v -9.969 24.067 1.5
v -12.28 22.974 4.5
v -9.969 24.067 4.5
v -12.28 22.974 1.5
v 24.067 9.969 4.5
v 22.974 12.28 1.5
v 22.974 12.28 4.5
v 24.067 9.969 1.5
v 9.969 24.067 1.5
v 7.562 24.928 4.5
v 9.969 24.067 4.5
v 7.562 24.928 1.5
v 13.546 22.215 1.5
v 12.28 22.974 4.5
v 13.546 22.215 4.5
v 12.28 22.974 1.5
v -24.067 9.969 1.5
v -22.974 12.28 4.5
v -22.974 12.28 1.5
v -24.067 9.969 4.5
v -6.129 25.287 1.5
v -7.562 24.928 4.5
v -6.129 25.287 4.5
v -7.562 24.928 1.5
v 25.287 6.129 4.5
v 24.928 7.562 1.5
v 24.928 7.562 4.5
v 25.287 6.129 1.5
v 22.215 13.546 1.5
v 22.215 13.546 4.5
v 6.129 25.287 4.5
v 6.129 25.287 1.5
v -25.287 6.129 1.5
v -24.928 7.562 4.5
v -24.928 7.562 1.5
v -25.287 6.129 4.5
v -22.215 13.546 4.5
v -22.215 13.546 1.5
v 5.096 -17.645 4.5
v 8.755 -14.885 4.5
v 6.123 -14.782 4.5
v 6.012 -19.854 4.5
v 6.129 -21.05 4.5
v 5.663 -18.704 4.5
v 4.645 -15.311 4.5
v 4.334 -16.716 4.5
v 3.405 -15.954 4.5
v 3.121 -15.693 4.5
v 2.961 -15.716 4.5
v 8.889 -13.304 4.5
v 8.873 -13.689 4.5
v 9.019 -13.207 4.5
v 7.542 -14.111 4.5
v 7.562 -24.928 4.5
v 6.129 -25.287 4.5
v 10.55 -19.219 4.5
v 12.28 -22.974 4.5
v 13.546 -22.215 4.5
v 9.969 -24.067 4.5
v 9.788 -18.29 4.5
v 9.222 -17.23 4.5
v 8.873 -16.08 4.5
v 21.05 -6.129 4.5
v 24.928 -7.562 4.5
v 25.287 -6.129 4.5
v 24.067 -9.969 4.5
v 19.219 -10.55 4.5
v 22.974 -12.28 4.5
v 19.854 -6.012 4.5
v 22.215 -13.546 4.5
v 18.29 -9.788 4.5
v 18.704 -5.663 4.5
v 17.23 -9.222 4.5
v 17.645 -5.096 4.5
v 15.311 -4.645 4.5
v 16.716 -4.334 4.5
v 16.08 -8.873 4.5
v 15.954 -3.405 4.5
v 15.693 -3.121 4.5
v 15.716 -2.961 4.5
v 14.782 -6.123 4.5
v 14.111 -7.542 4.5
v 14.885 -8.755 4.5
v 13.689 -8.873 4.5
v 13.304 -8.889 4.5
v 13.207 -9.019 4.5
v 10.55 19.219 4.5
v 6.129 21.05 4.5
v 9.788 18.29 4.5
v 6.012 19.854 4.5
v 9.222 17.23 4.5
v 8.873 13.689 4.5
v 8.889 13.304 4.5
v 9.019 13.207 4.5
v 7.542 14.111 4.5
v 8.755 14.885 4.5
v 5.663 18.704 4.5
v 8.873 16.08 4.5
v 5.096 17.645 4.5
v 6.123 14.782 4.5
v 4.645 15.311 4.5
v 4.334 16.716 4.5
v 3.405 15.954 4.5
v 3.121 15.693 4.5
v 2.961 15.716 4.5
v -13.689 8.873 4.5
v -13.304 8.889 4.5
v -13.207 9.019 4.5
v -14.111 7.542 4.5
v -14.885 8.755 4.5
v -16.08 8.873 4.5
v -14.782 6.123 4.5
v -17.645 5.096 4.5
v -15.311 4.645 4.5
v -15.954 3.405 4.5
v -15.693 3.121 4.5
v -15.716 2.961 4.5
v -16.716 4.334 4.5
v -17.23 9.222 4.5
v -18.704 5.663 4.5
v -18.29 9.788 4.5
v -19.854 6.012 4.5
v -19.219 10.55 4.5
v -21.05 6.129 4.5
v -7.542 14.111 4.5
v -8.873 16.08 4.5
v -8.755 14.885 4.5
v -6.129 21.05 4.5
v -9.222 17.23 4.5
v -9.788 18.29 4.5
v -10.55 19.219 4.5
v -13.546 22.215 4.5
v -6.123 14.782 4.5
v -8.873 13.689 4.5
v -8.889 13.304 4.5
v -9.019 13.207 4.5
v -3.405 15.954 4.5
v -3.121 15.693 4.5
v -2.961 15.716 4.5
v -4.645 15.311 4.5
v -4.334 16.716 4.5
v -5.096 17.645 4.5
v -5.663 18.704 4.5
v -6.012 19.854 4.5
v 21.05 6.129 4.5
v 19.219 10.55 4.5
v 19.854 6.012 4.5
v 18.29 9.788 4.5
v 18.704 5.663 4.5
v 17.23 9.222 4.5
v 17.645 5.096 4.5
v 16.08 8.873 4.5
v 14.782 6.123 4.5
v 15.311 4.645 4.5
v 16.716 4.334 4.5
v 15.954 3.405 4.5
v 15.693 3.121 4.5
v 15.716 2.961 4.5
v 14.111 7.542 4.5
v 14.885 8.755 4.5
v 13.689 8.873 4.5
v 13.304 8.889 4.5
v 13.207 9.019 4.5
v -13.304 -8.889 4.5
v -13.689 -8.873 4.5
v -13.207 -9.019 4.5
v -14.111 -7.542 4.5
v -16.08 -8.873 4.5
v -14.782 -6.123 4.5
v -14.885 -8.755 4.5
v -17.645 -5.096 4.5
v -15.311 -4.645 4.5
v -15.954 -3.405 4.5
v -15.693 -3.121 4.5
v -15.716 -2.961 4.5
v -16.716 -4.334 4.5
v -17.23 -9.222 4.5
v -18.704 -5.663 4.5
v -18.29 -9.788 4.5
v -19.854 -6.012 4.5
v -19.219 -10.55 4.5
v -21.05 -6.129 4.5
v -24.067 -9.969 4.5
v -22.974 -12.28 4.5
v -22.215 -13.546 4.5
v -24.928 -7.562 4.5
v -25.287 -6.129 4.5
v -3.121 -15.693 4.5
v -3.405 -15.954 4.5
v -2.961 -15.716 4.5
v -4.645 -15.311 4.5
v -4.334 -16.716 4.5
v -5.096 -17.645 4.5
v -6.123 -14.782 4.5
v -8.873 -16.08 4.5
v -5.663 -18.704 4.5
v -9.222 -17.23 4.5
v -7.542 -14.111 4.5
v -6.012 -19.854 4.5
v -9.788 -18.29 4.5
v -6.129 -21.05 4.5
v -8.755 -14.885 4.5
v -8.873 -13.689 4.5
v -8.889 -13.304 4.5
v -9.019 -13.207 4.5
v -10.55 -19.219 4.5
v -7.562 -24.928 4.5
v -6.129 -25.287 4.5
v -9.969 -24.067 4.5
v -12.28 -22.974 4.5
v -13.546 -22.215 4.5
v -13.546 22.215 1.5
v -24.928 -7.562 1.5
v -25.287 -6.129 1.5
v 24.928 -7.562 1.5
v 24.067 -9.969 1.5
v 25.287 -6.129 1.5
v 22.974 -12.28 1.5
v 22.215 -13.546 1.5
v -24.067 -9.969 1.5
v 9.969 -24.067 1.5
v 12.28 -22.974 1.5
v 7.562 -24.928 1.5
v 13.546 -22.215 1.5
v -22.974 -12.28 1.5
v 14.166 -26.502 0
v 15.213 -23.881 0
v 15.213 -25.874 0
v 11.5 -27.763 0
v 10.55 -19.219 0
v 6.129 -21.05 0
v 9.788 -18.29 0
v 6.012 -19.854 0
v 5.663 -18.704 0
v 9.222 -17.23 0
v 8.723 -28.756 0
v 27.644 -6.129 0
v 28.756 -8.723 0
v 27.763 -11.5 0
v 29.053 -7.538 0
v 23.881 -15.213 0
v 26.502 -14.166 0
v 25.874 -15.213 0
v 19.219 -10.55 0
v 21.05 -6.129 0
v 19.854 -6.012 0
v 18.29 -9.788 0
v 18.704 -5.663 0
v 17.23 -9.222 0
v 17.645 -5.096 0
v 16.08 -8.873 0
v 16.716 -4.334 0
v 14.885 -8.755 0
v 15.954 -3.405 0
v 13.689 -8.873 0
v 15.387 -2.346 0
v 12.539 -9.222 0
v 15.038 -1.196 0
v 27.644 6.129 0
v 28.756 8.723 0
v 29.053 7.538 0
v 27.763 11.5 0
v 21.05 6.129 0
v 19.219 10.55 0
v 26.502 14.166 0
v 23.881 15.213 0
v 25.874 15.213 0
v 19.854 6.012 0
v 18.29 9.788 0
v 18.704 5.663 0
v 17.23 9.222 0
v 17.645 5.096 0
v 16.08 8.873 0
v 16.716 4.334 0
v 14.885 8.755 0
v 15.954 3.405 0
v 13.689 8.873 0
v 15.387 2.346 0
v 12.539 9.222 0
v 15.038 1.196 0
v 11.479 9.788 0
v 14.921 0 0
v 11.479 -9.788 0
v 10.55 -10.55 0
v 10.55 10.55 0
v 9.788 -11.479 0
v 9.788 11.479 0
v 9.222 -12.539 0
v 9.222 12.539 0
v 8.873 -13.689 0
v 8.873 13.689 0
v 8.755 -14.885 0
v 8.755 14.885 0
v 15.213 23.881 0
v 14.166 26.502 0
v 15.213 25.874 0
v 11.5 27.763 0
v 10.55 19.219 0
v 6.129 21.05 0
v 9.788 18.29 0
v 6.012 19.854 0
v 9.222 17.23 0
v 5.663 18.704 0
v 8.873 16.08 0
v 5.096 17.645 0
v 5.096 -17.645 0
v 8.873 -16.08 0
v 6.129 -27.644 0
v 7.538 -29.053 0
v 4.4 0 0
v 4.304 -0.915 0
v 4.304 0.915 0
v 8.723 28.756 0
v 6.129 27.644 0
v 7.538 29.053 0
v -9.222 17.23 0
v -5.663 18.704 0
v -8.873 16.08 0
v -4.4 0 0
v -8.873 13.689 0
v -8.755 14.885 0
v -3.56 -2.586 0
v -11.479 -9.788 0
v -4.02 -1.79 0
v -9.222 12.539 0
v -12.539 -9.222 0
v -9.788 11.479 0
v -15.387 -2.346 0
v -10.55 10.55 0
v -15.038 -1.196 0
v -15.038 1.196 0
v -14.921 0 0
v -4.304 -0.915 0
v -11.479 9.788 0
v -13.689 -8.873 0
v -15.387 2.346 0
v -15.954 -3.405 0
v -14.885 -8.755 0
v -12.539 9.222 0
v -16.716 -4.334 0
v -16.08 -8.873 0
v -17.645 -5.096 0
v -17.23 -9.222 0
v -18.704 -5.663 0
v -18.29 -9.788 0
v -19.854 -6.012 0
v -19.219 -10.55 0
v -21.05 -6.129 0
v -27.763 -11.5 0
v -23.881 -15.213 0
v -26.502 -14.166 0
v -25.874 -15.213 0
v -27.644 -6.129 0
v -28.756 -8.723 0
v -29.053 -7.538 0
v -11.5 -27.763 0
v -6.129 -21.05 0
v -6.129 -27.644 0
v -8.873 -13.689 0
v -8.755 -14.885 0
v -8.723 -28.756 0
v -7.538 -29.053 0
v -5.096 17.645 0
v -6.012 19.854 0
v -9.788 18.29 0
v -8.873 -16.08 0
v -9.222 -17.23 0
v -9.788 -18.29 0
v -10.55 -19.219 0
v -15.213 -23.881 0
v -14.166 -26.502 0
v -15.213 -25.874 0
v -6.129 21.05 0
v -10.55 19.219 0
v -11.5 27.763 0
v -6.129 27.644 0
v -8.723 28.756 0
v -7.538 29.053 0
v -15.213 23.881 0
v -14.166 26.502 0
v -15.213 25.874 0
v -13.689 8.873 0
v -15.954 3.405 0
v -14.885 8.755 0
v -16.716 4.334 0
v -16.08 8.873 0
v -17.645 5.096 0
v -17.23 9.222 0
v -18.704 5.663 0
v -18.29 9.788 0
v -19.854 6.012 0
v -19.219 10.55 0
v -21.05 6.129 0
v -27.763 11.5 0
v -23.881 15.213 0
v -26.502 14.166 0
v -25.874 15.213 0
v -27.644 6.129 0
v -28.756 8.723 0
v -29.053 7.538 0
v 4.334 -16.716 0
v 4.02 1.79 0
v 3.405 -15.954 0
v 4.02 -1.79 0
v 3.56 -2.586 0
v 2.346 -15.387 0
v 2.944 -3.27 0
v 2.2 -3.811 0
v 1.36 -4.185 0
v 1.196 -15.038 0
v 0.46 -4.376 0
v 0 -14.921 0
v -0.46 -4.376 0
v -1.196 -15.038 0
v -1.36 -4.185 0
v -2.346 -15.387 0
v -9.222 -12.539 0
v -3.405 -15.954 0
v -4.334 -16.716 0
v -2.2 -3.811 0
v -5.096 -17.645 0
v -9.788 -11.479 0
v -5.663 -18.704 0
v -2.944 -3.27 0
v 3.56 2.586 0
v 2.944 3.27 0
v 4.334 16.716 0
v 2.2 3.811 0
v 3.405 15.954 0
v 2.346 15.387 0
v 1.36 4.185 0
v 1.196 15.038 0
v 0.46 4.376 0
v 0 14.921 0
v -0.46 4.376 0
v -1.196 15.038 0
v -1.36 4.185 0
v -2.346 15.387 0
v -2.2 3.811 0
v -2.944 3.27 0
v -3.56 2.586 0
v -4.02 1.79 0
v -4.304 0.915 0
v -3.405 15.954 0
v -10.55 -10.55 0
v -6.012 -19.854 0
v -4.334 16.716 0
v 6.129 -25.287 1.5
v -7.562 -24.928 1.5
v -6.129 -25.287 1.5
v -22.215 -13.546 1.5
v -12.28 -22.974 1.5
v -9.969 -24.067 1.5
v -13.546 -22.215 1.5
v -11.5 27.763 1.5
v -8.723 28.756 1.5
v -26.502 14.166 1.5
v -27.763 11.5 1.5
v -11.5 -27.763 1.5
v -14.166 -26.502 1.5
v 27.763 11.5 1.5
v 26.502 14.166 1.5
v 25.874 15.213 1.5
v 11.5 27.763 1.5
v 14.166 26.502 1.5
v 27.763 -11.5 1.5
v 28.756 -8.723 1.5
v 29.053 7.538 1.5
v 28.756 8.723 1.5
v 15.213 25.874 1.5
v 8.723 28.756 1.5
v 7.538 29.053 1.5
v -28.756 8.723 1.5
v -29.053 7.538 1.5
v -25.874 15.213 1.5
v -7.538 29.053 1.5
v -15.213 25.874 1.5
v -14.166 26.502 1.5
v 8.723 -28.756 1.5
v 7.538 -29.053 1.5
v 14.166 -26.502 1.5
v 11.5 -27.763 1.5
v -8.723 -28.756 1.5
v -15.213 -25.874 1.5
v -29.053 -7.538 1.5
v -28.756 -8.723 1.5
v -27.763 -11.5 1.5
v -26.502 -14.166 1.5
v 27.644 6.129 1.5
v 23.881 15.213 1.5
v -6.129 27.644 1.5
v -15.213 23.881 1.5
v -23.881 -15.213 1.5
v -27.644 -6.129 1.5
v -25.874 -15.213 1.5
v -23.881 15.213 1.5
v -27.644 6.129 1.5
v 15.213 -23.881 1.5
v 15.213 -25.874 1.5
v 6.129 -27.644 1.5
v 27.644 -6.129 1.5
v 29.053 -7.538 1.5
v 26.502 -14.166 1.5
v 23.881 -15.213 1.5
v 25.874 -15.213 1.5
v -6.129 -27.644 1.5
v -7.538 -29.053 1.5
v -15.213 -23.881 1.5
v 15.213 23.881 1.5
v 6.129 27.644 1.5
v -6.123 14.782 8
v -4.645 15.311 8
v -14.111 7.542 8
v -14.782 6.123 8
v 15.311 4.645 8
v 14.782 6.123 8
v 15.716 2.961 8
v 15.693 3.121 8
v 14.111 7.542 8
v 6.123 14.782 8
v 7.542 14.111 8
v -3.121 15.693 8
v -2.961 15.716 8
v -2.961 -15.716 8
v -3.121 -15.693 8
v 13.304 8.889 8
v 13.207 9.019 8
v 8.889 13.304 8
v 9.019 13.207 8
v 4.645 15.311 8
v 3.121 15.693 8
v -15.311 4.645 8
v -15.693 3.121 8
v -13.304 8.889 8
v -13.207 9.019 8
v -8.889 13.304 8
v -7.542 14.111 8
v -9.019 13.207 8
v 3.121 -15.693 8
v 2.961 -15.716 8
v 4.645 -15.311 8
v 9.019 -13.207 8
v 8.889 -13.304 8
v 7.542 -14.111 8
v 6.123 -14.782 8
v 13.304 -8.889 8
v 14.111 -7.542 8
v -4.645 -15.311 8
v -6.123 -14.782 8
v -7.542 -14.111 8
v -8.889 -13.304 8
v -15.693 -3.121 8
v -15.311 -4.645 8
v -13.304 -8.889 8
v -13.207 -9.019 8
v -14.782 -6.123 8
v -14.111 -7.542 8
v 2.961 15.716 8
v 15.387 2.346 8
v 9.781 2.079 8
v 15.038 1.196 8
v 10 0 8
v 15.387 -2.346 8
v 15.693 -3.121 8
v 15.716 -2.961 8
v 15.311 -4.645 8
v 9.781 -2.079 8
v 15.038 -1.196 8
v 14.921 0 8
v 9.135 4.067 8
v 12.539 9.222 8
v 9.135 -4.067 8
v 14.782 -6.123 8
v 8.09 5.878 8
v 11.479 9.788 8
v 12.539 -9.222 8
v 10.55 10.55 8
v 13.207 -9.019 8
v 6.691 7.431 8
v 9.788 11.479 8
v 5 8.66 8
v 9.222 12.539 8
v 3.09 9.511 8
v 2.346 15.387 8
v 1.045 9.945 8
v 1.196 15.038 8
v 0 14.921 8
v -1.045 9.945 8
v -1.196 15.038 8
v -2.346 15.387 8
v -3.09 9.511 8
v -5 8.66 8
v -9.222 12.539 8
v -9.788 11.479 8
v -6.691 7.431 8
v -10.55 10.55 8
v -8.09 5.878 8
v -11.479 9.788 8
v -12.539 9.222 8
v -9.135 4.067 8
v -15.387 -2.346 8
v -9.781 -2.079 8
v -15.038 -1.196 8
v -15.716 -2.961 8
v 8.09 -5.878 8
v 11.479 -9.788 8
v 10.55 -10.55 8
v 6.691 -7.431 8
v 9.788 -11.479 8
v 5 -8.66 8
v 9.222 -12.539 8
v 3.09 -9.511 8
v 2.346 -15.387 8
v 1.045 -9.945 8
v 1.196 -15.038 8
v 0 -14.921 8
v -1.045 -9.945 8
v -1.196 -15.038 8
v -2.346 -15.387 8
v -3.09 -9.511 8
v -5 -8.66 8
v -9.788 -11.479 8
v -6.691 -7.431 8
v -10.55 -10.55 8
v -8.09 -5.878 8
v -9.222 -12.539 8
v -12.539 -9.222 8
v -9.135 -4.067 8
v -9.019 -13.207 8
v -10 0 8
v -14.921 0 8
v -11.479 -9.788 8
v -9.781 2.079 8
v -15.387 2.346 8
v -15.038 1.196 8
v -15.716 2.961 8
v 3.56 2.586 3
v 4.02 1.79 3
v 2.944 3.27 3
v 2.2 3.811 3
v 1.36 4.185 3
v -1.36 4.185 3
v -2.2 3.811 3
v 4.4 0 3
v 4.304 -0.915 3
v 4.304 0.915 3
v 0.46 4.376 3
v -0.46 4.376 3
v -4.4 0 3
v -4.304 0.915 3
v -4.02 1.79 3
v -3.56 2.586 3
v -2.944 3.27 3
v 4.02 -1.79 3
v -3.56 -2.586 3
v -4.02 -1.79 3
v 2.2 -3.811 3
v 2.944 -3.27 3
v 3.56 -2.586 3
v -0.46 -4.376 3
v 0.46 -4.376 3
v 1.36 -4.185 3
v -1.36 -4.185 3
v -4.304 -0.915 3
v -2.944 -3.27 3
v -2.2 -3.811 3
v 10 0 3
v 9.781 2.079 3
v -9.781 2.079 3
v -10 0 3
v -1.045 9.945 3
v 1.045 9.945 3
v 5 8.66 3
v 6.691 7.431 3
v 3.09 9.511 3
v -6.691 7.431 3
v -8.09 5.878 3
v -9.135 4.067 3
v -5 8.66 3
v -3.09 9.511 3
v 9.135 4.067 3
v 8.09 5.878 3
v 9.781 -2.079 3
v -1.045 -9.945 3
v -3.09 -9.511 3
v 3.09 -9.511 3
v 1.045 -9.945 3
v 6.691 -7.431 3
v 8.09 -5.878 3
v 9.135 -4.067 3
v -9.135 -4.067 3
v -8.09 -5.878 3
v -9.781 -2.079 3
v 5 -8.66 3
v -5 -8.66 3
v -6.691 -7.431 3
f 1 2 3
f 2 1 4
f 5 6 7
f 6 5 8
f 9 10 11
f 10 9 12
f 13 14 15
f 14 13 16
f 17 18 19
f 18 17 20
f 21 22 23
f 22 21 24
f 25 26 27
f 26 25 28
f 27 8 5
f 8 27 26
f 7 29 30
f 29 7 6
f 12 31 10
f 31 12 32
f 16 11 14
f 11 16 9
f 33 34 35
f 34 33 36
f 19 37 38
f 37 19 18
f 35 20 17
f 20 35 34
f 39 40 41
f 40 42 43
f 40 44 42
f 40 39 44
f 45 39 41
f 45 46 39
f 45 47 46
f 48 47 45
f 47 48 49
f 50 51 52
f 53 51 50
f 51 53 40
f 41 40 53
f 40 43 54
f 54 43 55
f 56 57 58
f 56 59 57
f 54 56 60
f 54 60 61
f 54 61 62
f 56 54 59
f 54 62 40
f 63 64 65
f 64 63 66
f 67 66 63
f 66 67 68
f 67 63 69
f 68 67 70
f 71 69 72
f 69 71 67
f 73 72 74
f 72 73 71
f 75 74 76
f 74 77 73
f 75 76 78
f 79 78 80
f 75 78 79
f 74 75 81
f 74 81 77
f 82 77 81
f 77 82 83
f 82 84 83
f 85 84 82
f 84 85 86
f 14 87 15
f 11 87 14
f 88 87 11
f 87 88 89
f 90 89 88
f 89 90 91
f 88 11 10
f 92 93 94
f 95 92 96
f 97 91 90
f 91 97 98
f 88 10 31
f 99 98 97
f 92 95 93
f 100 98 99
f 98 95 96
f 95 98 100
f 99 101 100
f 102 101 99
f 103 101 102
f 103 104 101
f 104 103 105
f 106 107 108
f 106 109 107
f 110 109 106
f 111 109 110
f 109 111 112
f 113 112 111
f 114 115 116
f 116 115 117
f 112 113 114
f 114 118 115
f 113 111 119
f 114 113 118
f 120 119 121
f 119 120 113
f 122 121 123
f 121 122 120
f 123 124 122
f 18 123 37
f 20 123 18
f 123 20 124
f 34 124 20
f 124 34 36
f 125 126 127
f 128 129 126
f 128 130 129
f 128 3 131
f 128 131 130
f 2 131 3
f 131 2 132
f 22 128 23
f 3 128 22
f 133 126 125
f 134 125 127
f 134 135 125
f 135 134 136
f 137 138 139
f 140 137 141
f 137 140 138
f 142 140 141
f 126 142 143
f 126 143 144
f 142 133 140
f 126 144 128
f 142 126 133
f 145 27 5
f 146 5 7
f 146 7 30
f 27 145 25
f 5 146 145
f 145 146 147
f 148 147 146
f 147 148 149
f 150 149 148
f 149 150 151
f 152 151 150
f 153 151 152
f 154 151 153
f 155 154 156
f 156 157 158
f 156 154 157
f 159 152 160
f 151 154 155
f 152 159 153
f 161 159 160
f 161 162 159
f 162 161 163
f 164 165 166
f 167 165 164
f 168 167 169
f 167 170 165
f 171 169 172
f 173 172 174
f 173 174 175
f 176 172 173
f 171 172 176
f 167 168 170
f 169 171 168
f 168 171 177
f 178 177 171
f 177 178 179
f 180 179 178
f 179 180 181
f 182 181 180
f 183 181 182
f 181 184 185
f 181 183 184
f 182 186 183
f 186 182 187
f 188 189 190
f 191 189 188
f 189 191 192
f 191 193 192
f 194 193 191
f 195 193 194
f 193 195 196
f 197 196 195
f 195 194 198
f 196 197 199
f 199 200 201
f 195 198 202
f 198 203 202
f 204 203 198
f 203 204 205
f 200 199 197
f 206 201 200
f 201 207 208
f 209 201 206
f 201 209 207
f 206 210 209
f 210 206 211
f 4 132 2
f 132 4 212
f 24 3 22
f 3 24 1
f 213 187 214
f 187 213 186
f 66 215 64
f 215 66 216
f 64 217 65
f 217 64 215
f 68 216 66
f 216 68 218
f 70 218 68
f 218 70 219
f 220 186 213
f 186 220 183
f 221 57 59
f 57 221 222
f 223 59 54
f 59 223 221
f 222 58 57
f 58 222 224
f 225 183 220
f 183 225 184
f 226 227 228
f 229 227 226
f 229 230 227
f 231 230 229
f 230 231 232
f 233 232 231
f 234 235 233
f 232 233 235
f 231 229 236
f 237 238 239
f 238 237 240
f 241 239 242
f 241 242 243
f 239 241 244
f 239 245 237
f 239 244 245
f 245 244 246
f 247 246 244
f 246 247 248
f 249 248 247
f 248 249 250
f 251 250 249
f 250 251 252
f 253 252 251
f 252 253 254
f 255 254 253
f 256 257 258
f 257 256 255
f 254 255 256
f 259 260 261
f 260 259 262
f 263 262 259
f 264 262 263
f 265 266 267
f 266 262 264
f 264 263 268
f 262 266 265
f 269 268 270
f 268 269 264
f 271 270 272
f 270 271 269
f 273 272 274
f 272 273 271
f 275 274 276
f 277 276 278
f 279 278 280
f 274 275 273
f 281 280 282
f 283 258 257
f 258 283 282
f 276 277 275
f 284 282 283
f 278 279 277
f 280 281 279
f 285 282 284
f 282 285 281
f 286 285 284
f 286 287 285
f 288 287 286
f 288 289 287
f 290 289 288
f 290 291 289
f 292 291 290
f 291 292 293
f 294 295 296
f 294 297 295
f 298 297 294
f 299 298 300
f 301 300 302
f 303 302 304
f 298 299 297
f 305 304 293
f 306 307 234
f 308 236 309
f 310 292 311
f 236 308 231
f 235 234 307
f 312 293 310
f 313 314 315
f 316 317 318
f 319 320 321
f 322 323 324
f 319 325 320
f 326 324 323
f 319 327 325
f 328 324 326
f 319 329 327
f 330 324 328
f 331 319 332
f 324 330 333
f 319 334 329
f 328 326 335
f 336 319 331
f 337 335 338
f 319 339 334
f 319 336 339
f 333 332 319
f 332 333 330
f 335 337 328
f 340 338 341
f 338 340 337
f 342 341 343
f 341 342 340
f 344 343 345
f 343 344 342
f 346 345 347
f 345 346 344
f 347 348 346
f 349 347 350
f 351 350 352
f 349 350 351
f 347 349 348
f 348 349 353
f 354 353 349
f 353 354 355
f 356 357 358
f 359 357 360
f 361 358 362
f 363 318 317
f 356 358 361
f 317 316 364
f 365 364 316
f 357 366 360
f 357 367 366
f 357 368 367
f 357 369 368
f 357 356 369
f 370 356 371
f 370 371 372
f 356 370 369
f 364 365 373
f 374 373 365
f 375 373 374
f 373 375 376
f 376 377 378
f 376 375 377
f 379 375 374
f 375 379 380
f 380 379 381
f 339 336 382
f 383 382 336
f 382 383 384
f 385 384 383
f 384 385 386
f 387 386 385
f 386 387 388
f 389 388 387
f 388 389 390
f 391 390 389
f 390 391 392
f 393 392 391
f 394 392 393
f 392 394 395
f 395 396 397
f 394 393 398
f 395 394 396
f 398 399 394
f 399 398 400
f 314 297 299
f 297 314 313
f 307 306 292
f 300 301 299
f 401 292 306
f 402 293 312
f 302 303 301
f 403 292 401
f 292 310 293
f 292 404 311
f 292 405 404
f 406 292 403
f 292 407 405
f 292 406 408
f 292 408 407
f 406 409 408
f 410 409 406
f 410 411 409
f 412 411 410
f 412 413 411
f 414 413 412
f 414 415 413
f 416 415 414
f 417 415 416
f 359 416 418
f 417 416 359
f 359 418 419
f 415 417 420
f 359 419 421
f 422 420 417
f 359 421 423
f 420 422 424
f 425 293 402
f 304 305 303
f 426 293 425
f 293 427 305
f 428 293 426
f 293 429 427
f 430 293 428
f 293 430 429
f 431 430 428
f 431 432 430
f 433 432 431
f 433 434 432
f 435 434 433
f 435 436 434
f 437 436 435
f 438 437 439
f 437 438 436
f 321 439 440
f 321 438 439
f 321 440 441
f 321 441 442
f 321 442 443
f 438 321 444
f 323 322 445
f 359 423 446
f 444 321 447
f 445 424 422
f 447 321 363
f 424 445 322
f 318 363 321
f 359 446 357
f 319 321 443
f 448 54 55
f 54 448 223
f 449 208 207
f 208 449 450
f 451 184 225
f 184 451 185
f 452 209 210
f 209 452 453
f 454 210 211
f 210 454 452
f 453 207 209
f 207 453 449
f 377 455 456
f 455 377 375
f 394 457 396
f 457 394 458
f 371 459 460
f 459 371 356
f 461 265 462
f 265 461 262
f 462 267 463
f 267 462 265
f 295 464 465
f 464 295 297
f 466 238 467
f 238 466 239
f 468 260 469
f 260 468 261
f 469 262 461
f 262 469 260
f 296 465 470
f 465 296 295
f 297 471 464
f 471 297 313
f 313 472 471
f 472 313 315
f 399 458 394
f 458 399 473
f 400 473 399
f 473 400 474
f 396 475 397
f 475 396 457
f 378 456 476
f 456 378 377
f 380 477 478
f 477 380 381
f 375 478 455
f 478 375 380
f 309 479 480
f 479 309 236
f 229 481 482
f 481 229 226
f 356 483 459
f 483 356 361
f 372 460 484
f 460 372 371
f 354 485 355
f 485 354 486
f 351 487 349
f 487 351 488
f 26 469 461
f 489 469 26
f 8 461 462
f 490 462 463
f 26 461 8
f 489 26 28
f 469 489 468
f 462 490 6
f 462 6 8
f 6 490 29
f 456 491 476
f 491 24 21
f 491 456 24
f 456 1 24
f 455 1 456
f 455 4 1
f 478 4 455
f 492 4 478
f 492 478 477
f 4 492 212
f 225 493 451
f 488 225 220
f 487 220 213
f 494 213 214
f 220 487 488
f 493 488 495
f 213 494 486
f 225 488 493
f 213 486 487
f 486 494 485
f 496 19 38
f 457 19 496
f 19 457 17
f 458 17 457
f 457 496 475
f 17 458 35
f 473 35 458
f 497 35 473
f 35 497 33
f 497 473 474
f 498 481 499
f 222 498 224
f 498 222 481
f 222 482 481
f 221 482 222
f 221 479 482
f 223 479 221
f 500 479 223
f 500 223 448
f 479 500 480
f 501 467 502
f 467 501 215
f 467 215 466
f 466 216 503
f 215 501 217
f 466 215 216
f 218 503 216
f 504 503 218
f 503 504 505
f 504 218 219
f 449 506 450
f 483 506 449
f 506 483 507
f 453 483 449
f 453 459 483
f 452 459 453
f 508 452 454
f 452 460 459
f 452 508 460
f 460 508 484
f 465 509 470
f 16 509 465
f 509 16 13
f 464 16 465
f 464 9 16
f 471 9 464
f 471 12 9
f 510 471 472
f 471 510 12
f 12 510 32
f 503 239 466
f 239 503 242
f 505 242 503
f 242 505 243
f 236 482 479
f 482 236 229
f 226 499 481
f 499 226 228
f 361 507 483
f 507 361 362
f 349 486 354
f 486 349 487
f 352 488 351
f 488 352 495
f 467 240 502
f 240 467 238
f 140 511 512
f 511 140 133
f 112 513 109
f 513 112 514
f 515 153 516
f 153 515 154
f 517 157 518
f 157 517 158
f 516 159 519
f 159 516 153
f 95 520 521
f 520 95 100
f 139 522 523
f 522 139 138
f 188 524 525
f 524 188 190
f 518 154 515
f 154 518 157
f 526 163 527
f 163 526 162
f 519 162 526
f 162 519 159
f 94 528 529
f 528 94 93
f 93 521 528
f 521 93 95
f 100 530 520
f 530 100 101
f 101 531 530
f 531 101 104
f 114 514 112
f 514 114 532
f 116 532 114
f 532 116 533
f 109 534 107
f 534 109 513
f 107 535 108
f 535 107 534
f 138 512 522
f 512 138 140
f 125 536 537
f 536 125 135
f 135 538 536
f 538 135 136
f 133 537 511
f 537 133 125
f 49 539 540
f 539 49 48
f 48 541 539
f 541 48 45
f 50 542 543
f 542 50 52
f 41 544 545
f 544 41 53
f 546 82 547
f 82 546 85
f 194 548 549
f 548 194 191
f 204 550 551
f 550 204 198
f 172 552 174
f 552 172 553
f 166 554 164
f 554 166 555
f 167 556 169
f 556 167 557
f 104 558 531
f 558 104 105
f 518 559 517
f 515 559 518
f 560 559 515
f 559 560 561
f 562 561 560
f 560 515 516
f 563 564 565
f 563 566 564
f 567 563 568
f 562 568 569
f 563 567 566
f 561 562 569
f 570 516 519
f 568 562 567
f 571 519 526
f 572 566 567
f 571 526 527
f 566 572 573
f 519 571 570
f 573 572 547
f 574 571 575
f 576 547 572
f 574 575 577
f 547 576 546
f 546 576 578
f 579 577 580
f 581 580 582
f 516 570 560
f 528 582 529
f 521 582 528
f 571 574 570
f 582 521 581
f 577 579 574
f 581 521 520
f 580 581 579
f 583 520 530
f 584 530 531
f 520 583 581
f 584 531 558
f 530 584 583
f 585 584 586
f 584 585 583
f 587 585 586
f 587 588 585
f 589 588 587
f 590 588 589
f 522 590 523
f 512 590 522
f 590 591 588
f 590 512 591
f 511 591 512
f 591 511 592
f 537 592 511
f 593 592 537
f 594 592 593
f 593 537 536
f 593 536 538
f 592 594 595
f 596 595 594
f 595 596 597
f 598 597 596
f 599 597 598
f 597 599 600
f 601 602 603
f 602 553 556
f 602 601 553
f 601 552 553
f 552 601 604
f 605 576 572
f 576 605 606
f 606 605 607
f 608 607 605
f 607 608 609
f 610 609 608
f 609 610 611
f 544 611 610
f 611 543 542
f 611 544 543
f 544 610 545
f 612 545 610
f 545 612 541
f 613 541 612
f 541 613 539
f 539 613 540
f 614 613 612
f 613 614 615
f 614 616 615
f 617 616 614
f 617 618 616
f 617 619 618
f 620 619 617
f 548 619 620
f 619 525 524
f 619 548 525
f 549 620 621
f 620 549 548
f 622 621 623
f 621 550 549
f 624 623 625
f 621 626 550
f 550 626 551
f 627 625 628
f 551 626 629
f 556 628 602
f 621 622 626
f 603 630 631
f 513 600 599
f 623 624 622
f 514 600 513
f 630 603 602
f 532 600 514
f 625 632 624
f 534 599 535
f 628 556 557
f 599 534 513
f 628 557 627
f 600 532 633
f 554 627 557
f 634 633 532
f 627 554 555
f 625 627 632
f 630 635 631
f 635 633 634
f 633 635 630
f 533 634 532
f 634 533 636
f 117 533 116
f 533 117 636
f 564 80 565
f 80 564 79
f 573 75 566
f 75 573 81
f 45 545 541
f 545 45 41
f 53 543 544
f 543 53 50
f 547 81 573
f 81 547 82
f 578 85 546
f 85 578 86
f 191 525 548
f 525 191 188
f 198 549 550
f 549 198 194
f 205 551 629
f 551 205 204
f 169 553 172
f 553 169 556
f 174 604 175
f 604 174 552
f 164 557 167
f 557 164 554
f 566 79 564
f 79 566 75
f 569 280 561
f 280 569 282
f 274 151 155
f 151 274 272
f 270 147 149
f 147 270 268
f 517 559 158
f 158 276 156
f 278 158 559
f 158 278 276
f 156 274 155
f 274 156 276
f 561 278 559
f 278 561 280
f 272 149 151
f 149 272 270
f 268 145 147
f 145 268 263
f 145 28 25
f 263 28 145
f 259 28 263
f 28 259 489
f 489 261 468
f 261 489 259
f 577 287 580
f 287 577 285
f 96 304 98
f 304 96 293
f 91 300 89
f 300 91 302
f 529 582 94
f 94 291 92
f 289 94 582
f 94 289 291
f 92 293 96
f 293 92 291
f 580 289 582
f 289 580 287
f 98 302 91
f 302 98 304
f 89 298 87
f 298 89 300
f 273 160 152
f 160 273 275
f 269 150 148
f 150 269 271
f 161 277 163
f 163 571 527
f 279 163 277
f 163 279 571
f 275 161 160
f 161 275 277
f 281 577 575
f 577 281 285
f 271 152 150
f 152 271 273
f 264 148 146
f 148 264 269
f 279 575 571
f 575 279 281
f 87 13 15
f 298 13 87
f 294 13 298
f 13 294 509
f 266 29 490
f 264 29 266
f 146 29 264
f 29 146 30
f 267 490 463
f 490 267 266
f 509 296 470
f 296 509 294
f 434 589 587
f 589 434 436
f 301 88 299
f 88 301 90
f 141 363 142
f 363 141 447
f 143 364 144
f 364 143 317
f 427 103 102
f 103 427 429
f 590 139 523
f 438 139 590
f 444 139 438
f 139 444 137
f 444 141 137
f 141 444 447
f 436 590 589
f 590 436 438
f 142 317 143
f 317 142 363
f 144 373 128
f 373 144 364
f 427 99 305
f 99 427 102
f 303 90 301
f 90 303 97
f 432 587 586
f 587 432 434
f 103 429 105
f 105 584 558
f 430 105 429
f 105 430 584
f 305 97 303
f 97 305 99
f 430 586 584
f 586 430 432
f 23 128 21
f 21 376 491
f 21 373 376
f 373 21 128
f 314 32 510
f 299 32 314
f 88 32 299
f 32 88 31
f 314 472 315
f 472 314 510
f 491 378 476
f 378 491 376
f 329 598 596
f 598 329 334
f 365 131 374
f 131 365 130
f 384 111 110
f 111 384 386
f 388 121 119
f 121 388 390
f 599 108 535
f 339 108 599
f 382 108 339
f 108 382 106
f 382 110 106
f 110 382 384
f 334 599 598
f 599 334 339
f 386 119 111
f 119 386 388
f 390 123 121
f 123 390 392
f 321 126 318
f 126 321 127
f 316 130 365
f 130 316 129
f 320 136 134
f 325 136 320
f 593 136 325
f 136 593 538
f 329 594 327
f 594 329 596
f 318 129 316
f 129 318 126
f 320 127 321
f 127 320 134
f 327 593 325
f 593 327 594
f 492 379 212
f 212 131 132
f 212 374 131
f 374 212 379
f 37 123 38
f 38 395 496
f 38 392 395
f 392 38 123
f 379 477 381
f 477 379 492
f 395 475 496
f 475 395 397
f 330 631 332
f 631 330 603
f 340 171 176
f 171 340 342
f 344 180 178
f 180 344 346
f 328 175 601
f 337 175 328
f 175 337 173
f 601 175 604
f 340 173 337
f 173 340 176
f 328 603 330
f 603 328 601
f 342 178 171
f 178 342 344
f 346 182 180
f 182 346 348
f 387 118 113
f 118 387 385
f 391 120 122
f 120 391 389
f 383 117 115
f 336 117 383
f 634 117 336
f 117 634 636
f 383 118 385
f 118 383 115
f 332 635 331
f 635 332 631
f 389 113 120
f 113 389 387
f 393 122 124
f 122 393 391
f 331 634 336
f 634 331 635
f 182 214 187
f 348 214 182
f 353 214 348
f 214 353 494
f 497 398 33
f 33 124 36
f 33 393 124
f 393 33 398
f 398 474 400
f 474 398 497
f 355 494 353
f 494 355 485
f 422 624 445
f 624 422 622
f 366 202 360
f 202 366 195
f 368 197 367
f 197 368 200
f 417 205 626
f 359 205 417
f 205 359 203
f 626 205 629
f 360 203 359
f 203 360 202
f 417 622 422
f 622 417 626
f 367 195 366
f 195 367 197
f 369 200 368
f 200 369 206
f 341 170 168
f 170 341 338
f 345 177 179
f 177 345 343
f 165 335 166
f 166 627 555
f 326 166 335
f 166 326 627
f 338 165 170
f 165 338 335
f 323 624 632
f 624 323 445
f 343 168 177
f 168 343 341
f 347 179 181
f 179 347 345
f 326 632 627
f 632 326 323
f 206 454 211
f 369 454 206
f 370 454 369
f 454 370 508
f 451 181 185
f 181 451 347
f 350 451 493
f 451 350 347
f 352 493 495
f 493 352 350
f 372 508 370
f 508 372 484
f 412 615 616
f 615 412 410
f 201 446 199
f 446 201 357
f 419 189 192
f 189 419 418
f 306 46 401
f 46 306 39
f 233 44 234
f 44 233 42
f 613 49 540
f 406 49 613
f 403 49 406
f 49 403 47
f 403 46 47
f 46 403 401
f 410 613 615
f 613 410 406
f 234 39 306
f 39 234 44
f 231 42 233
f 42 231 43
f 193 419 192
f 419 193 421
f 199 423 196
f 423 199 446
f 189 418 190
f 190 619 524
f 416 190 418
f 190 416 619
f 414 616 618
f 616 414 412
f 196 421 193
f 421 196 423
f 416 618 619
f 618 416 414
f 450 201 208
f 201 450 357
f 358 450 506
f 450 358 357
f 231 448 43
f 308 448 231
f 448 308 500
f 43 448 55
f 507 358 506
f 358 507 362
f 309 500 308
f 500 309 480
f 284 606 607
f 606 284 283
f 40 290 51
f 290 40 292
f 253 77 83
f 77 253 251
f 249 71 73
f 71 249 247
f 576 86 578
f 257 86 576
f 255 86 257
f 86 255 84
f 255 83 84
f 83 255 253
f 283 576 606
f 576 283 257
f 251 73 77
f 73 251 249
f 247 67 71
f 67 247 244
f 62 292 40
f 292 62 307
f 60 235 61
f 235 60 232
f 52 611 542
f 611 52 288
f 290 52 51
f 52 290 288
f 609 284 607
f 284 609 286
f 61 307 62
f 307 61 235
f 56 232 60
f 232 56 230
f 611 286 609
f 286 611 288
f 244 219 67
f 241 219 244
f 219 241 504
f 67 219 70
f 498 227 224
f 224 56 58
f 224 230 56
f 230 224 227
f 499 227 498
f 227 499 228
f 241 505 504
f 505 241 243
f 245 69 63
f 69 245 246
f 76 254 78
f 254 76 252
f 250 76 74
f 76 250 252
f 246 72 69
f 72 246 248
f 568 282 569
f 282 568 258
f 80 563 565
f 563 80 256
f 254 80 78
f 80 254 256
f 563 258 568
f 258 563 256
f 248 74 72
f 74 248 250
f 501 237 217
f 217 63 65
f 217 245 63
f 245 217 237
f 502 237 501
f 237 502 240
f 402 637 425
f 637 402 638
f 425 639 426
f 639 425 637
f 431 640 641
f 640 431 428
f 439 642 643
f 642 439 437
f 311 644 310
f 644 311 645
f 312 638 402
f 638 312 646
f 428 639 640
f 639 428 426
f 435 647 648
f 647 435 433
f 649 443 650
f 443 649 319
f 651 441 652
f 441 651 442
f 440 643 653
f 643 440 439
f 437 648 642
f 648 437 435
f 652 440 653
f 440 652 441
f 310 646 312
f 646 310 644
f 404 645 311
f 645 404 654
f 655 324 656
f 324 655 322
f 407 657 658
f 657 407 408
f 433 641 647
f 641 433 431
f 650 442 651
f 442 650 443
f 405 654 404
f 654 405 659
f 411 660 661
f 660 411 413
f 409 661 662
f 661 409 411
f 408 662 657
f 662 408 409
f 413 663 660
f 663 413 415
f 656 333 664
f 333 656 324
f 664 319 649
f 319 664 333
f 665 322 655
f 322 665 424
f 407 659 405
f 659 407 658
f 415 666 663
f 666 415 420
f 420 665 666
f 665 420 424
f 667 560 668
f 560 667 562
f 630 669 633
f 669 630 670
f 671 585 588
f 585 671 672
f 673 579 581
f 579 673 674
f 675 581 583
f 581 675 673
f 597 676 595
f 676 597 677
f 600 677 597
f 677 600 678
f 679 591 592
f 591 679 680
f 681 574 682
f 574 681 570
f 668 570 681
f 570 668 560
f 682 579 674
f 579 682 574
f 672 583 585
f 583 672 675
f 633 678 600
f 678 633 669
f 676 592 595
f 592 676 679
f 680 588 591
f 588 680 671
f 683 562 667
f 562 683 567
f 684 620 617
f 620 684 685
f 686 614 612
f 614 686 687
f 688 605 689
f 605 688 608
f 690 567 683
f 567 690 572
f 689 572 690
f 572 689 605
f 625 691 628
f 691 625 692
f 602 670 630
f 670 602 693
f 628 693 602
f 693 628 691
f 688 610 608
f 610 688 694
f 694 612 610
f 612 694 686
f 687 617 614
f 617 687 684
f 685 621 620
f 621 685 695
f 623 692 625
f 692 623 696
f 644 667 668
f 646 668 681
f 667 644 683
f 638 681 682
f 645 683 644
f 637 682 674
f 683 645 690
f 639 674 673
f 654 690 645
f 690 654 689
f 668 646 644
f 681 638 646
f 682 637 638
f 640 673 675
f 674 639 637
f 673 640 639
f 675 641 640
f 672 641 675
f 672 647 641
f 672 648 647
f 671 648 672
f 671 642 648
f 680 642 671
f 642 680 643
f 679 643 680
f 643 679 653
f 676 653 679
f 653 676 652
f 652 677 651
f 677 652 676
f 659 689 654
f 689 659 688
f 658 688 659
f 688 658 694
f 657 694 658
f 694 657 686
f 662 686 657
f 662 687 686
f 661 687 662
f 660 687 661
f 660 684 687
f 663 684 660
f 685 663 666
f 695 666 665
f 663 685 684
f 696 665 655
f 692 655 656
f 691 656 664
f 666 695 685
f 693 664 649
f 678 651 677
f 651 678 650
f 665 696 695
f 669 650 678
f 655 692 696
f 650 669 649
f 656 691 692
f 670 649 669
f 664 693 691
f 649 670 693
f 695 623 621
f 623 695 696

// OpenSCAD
// RebeliX
//
// spool-center
// GNU GPL v3
// Martin Neruda <neruda@reprap4u.cz>
// http://www.reprap4u.cz

// Prumer otvoru v civce
spool_hole_big = 52.1; // "Devil Design"
spool_hole_small = 32; // "MK Floria"

module spool_center_base()
{
  cylinder(h=4.5,r=(spool_hole_big/2),$fn=64);
  cylinder(h=1.5, r=(spool_hole_big/2)+4,$fn=64);
  cylinder(h=8,r=(spool_hole_small/2),$fn=64);
}

module spool_center_cuts()
{
  translate([0,0,-0.1]) cylinder (h=13,r=4.4,$fn=30);
  for ( i = [0 : 45 : 360] )
  {
    rotate([0,0,i])
	{
	  translate([spool_hole_big/2 - 5,0,0]) cylinder(r=spool_hole_big/8.5,h=20, $fn=32,center=true);
	  translate([spool_hole_big/2 + spool_hole_big/8.5 - 5,0,0]) cube([2*(spool_hole_big/8.5),2*(spool_hole_big/8.5),20],center=true);
   	  translate([spool_hole_big/2 + 4,- 5,0]) rotate([0,0,45]) cube([5,5,5],center=true);
	  translate([spool_hole_big/2 + 4,+ 5,0]) rotate([0,0,45]) cube([5,5,5],center=true);
	}
  }		
  translate([0,0,3]) cylinder(h=10,r=(spool_hole_small-12)/2);
}

module spool_center()
{
  difference()
  {
	spool_center_base();
	spool_center_cuts();
  }
}

spool_center();
